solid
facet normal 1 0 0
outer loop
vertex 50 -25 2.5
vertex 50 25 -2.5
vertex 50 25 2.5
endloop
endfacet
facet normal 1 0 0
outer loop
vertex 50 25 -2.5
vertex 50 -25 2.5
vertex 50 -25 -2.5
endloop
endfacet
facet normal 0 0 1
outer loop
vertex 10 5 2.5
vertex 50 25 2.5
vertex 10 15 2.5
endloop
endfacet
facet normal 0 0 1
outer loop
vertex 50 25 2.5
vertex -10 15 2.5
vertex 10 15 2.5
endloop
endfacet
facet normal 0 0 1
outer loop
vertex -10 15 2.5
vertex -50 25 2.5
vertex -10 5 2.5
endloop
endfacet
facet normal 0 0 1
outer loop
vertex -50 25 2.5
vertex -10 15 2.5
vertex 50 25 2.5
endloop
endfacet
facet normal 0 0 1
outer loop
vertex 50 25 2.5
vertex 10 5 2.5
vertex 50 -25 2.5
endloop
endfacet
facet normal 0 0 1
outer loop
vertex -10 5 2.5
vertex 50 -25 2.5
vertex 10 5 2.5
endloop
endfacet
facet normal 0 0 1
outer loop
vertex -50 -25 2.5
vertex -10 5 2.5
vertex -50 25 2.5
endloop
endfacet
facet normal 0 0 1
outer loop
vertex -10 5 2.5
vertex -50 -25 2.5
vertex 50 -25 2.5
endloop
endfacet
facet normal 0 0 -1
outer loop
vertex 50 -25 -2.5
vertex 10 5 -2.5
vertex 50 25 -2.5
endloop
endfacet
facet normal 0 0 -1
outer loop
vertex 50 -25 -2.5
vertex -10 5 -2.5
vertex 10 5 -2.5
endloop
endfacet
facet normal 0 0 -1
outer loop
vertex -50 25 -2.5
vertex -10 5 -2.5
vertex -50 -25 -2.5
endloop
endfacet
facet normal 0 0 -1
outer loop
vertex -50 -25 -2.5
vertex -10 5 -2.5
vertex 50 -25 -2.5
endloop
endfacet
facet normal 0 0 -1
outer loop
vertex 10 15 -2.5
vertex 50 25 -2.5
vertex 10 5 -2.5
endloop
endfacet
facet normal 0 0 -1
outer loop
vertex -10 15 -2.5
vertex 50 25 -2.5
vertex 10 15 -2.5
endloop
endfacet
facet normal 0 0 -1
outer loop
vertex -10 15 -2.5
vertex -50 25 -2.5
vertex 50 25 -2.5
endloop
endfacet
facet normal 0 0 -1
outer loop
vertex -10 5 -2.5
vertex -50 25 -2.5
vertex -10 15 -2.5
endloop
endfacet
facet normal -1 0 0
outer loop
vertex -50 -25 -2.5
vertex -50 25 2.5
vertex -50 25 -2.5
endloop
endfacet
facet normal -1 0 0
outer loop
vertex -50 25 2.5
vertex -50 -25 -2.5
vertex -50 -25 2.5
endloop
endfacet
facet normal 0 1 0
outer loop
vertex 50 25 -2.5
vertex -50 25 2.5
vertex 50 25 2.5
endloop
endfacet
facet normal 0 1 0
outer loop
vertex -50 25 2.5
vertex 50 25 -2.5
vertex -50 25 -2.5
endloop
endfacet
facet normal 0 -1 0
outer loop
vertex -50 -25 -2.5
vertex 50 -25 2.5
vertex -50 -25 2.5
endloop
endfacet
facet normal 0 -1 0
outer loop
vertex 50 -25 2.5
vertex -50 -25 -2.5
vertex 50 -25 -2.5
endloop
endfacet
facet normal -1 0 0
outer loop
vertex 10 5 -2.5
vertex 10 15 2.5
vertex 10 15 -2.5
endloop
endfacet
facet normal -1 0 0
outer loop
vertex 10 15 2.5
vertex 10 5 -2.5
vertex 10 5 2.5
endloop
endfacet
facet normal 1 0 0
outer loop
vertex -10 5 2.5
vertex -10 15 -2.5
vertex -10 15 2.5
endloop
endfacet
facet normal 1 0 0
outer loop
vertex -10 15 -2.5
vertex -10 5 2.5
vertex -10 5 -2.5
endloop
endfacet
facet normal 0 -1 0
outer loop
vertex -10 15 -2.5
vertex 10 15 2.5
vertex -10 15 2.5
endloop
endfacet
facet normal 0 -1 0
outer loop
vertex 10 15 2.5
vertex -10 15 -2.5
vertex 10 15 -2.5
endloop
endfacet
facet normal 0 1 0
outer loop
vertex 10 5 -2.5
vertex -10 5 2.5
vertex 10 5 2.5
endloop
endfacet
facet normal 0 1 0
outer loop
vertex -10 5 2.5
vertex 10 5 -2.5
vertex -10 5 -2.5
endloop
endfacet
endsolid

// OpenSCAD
// Parameters for the rectangular plate with slot
plate_length = 100;  // Length of the plate
plate_width = 50;    // Width of the plate
plate_thickness = 5; // Thickness of the plate
slot_length = 20;    // Length of the slot
slot_width = 10;     // Width of the slot
slot_offset = 10;    // Distance of the slot from the shorter edge of the plate

// Function to create a rectangular plate with a slot
module rectangular_plate_with_slot() {
    difference() {
        // Main rectangular plate
        cube([plate_length, plate_width, plate_thickness], center = true);
        
        // Slot
        translate([0, plate_width / 2 - slot_offset - slot_width / 2, 0])
            cube([slot_length, slot_width, plate_thickness + 1], center = true);
    }
}

// Render the model
rectangular_plate_with_slot();
